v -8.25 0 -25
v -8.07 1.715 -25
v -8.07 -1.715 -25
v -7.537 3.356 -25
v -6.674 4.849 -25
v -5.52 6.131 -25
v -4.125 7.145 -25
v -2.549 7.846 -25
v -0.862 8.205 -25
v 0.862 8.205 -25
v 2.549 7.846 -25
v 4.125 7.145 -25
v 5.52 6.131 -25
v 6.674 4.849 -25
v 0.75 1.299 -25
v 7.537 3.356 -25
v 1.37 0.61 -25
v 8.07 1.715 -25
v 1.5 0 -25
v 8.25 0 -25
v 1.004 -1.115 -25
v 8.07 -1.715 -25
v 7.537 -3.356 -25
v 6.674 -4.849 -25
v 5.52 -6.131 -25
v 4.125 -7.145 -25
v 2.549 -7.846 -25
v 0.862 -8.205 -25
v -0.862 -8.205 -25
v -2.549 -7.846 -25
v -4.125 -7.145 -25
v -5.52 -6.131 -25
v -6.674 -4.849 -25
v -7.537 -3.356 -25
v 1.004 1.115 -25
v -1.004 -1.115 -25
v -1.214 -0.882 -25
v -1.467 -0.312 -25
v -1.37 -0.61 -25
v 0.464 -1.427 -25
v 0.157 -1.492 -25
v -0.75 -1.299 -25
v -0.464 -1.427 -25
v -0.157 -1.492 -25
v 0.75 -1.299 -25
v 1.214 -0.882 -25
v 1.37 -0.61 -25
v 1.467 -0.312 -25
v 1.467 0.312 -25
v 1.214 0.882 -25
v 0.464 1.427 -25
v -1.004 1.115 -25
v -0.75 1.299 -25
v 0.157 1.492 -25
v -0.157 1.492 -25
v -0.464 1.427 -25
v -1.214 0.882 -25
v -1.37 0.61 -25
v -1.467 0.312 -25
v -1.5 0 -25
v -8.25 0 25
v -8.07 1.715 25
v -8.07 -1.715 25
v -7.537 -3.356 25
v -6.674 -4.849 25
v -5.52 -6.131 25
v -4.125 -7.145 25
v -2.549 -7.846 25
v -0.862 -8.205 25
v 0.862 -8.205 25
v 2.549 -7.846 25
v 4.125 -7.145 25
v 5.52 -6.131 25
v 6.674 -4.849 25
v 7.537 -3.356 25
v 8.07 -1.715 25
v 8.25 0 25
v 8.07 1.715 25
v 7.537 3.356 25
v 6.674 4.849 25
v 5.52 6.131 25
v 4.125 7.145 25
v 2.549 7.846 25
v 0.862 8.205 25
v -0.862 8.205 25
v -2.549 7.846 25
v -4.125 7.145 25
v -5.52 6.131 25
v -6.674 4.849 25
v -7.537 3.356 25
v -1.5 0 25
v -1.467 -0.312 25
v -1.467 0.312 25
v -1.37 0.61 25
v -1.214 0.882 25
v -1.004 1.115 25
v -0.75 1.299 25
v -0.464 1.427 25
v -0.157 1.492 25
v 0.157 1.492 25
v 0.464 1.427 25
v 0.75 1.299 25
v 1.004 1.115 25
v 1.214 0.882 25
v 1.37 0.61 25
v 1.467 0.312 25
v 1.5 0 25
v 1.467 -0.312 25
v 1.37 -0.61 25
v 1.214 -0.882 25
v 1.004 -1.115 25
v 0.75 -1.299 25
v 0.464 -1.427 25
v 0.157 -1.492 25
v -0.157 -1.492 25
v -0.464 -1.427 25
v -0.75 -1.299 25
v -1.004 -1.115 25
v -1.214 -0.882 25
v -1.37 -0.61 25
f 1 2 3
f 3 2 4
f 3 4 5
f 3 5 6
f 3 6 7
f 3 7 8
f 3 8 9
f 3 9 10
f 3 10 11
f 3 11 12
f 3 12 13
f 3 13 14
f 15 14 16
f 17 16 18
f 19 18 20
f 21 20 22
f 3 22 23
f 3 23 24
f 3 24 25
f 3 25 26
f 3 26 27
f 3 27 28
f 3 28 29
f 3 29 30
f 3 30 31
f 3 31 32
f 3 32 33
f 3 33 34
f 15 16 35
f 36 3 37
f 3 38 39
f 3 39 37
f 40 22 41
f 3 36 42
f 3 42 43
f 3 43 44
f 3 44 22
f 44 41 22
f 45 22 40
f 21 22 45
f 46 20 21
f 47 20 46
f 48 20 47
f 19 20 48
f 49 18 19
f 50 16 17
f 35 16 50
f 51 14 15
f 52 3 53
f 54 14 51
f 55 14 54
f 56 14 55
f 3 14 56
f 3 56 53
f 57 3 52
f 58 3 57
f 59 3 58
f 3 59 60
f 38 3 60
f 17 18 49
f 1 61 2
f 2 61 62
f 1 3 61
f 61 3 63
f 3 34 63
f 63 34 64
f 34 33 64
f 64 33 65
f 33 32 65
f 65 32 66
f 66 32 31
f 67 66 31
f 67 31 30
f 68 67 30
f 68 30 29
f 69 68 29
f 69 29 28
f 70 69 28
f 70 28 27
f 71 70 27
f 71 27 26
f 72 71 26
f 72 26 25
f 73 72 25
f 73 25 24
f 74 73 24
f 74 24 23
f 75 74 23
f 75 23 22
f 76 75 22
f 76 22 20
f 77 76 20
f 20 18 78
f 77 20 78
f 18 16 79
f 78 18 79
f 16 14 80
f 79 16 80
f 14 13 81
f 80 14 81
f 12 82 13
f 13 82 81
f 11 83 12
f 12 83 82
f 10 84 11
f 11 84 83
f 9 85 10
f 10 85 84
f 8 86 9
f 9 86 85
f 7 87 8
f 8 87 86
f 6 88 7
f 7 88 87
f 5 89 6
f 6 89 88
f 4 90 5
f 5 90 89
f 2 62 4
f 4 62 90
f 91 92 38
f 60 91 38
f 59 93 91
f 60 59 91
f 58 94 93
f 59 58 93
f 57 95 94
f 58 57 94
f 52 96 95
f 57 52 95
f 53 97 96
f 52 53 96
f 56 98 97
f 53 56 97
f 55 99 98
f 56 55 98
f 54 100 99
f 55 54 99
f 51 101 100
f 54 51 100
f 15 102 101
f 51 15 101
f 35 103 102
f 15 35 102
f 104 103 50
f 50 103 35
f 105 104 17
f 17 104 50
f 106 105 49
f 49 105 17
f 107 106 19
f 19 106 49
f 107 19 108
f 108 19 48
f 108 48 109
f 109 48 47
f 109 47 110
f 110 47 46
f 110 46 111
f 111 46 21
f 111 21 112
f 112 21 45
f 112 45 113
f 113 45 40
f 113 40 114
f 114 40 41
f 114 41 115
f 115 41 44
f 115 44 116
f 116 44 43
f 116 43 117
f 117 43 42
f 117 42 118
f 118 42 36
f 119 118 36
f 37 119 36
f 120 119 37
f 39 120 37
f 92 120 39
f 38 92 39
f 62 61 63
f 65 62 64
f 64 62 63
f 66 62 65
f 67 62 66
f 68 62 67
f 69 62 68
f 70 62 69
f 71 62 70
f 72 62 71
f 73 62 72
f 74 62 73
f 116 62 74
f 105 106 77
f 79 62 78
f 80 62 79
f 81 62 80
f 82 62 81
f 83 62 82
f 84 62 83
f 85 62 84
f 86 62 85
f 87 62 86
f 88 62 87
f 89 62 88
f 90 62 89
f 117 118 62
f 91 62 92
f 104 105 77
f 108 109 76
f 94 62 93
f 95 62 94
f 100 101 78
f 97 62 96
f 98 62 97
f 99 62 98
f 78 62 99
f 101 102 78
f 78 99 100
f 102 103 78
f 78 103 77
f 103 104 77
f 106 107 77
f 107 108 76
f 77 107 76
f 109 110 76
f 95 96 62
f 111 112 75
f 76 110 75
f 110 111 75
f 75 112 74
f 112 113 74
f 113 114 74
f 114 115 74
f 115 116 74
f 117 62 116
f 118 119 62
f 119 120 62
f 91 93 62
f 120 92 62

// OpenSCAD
he_diam=16.5;
he_len=50;

block_x = he_diam+15;
block_y=he_diam+2;
block_z=11;

//-- central body
difference() {
  cylinder(r=he_diam/2, h=he_len, center=true, $fn=30);
  cylinder(r=3/2, h=60, center=true, $fn=30);
}


//-- Block
*color("blue")
translate([0, 0,
               -block_z/2-he_len/2+1])
difference() {
  translate([block_x/2-he_diam/2-3,0,0])
    difference() {
      cube([he_diam+15,he_diam+2,11],center=true);

    translate([block_x/2-6-2,0,0])
      rotate([90,0,0])
       cylinder(r=6/2, h=block_y+10,center=true,$fn=20);
  }
  cylinder(r=3/2, h=block_z+2, center=true,$fn=10);
}

*color("green")
translate([0,0,-block_z/2-he_len/2-block_z+2.5+1])
difference() {
  cylinder(r=16/2, h=6, center=true, $fn=6);
  cylinder(r=3/2, h=7, $fn=10,center=true);
}

*color("red")
translate([0,0,-block_z/2-he_len/2-block_z+3-6 -5/2+2])
difference() {
  cylinder(r2=13/2, r1=2/2, $fn=20, h=10,center=true);
  cylinder(r=0.5/2, h=12, $fn=10,center=true);
}
